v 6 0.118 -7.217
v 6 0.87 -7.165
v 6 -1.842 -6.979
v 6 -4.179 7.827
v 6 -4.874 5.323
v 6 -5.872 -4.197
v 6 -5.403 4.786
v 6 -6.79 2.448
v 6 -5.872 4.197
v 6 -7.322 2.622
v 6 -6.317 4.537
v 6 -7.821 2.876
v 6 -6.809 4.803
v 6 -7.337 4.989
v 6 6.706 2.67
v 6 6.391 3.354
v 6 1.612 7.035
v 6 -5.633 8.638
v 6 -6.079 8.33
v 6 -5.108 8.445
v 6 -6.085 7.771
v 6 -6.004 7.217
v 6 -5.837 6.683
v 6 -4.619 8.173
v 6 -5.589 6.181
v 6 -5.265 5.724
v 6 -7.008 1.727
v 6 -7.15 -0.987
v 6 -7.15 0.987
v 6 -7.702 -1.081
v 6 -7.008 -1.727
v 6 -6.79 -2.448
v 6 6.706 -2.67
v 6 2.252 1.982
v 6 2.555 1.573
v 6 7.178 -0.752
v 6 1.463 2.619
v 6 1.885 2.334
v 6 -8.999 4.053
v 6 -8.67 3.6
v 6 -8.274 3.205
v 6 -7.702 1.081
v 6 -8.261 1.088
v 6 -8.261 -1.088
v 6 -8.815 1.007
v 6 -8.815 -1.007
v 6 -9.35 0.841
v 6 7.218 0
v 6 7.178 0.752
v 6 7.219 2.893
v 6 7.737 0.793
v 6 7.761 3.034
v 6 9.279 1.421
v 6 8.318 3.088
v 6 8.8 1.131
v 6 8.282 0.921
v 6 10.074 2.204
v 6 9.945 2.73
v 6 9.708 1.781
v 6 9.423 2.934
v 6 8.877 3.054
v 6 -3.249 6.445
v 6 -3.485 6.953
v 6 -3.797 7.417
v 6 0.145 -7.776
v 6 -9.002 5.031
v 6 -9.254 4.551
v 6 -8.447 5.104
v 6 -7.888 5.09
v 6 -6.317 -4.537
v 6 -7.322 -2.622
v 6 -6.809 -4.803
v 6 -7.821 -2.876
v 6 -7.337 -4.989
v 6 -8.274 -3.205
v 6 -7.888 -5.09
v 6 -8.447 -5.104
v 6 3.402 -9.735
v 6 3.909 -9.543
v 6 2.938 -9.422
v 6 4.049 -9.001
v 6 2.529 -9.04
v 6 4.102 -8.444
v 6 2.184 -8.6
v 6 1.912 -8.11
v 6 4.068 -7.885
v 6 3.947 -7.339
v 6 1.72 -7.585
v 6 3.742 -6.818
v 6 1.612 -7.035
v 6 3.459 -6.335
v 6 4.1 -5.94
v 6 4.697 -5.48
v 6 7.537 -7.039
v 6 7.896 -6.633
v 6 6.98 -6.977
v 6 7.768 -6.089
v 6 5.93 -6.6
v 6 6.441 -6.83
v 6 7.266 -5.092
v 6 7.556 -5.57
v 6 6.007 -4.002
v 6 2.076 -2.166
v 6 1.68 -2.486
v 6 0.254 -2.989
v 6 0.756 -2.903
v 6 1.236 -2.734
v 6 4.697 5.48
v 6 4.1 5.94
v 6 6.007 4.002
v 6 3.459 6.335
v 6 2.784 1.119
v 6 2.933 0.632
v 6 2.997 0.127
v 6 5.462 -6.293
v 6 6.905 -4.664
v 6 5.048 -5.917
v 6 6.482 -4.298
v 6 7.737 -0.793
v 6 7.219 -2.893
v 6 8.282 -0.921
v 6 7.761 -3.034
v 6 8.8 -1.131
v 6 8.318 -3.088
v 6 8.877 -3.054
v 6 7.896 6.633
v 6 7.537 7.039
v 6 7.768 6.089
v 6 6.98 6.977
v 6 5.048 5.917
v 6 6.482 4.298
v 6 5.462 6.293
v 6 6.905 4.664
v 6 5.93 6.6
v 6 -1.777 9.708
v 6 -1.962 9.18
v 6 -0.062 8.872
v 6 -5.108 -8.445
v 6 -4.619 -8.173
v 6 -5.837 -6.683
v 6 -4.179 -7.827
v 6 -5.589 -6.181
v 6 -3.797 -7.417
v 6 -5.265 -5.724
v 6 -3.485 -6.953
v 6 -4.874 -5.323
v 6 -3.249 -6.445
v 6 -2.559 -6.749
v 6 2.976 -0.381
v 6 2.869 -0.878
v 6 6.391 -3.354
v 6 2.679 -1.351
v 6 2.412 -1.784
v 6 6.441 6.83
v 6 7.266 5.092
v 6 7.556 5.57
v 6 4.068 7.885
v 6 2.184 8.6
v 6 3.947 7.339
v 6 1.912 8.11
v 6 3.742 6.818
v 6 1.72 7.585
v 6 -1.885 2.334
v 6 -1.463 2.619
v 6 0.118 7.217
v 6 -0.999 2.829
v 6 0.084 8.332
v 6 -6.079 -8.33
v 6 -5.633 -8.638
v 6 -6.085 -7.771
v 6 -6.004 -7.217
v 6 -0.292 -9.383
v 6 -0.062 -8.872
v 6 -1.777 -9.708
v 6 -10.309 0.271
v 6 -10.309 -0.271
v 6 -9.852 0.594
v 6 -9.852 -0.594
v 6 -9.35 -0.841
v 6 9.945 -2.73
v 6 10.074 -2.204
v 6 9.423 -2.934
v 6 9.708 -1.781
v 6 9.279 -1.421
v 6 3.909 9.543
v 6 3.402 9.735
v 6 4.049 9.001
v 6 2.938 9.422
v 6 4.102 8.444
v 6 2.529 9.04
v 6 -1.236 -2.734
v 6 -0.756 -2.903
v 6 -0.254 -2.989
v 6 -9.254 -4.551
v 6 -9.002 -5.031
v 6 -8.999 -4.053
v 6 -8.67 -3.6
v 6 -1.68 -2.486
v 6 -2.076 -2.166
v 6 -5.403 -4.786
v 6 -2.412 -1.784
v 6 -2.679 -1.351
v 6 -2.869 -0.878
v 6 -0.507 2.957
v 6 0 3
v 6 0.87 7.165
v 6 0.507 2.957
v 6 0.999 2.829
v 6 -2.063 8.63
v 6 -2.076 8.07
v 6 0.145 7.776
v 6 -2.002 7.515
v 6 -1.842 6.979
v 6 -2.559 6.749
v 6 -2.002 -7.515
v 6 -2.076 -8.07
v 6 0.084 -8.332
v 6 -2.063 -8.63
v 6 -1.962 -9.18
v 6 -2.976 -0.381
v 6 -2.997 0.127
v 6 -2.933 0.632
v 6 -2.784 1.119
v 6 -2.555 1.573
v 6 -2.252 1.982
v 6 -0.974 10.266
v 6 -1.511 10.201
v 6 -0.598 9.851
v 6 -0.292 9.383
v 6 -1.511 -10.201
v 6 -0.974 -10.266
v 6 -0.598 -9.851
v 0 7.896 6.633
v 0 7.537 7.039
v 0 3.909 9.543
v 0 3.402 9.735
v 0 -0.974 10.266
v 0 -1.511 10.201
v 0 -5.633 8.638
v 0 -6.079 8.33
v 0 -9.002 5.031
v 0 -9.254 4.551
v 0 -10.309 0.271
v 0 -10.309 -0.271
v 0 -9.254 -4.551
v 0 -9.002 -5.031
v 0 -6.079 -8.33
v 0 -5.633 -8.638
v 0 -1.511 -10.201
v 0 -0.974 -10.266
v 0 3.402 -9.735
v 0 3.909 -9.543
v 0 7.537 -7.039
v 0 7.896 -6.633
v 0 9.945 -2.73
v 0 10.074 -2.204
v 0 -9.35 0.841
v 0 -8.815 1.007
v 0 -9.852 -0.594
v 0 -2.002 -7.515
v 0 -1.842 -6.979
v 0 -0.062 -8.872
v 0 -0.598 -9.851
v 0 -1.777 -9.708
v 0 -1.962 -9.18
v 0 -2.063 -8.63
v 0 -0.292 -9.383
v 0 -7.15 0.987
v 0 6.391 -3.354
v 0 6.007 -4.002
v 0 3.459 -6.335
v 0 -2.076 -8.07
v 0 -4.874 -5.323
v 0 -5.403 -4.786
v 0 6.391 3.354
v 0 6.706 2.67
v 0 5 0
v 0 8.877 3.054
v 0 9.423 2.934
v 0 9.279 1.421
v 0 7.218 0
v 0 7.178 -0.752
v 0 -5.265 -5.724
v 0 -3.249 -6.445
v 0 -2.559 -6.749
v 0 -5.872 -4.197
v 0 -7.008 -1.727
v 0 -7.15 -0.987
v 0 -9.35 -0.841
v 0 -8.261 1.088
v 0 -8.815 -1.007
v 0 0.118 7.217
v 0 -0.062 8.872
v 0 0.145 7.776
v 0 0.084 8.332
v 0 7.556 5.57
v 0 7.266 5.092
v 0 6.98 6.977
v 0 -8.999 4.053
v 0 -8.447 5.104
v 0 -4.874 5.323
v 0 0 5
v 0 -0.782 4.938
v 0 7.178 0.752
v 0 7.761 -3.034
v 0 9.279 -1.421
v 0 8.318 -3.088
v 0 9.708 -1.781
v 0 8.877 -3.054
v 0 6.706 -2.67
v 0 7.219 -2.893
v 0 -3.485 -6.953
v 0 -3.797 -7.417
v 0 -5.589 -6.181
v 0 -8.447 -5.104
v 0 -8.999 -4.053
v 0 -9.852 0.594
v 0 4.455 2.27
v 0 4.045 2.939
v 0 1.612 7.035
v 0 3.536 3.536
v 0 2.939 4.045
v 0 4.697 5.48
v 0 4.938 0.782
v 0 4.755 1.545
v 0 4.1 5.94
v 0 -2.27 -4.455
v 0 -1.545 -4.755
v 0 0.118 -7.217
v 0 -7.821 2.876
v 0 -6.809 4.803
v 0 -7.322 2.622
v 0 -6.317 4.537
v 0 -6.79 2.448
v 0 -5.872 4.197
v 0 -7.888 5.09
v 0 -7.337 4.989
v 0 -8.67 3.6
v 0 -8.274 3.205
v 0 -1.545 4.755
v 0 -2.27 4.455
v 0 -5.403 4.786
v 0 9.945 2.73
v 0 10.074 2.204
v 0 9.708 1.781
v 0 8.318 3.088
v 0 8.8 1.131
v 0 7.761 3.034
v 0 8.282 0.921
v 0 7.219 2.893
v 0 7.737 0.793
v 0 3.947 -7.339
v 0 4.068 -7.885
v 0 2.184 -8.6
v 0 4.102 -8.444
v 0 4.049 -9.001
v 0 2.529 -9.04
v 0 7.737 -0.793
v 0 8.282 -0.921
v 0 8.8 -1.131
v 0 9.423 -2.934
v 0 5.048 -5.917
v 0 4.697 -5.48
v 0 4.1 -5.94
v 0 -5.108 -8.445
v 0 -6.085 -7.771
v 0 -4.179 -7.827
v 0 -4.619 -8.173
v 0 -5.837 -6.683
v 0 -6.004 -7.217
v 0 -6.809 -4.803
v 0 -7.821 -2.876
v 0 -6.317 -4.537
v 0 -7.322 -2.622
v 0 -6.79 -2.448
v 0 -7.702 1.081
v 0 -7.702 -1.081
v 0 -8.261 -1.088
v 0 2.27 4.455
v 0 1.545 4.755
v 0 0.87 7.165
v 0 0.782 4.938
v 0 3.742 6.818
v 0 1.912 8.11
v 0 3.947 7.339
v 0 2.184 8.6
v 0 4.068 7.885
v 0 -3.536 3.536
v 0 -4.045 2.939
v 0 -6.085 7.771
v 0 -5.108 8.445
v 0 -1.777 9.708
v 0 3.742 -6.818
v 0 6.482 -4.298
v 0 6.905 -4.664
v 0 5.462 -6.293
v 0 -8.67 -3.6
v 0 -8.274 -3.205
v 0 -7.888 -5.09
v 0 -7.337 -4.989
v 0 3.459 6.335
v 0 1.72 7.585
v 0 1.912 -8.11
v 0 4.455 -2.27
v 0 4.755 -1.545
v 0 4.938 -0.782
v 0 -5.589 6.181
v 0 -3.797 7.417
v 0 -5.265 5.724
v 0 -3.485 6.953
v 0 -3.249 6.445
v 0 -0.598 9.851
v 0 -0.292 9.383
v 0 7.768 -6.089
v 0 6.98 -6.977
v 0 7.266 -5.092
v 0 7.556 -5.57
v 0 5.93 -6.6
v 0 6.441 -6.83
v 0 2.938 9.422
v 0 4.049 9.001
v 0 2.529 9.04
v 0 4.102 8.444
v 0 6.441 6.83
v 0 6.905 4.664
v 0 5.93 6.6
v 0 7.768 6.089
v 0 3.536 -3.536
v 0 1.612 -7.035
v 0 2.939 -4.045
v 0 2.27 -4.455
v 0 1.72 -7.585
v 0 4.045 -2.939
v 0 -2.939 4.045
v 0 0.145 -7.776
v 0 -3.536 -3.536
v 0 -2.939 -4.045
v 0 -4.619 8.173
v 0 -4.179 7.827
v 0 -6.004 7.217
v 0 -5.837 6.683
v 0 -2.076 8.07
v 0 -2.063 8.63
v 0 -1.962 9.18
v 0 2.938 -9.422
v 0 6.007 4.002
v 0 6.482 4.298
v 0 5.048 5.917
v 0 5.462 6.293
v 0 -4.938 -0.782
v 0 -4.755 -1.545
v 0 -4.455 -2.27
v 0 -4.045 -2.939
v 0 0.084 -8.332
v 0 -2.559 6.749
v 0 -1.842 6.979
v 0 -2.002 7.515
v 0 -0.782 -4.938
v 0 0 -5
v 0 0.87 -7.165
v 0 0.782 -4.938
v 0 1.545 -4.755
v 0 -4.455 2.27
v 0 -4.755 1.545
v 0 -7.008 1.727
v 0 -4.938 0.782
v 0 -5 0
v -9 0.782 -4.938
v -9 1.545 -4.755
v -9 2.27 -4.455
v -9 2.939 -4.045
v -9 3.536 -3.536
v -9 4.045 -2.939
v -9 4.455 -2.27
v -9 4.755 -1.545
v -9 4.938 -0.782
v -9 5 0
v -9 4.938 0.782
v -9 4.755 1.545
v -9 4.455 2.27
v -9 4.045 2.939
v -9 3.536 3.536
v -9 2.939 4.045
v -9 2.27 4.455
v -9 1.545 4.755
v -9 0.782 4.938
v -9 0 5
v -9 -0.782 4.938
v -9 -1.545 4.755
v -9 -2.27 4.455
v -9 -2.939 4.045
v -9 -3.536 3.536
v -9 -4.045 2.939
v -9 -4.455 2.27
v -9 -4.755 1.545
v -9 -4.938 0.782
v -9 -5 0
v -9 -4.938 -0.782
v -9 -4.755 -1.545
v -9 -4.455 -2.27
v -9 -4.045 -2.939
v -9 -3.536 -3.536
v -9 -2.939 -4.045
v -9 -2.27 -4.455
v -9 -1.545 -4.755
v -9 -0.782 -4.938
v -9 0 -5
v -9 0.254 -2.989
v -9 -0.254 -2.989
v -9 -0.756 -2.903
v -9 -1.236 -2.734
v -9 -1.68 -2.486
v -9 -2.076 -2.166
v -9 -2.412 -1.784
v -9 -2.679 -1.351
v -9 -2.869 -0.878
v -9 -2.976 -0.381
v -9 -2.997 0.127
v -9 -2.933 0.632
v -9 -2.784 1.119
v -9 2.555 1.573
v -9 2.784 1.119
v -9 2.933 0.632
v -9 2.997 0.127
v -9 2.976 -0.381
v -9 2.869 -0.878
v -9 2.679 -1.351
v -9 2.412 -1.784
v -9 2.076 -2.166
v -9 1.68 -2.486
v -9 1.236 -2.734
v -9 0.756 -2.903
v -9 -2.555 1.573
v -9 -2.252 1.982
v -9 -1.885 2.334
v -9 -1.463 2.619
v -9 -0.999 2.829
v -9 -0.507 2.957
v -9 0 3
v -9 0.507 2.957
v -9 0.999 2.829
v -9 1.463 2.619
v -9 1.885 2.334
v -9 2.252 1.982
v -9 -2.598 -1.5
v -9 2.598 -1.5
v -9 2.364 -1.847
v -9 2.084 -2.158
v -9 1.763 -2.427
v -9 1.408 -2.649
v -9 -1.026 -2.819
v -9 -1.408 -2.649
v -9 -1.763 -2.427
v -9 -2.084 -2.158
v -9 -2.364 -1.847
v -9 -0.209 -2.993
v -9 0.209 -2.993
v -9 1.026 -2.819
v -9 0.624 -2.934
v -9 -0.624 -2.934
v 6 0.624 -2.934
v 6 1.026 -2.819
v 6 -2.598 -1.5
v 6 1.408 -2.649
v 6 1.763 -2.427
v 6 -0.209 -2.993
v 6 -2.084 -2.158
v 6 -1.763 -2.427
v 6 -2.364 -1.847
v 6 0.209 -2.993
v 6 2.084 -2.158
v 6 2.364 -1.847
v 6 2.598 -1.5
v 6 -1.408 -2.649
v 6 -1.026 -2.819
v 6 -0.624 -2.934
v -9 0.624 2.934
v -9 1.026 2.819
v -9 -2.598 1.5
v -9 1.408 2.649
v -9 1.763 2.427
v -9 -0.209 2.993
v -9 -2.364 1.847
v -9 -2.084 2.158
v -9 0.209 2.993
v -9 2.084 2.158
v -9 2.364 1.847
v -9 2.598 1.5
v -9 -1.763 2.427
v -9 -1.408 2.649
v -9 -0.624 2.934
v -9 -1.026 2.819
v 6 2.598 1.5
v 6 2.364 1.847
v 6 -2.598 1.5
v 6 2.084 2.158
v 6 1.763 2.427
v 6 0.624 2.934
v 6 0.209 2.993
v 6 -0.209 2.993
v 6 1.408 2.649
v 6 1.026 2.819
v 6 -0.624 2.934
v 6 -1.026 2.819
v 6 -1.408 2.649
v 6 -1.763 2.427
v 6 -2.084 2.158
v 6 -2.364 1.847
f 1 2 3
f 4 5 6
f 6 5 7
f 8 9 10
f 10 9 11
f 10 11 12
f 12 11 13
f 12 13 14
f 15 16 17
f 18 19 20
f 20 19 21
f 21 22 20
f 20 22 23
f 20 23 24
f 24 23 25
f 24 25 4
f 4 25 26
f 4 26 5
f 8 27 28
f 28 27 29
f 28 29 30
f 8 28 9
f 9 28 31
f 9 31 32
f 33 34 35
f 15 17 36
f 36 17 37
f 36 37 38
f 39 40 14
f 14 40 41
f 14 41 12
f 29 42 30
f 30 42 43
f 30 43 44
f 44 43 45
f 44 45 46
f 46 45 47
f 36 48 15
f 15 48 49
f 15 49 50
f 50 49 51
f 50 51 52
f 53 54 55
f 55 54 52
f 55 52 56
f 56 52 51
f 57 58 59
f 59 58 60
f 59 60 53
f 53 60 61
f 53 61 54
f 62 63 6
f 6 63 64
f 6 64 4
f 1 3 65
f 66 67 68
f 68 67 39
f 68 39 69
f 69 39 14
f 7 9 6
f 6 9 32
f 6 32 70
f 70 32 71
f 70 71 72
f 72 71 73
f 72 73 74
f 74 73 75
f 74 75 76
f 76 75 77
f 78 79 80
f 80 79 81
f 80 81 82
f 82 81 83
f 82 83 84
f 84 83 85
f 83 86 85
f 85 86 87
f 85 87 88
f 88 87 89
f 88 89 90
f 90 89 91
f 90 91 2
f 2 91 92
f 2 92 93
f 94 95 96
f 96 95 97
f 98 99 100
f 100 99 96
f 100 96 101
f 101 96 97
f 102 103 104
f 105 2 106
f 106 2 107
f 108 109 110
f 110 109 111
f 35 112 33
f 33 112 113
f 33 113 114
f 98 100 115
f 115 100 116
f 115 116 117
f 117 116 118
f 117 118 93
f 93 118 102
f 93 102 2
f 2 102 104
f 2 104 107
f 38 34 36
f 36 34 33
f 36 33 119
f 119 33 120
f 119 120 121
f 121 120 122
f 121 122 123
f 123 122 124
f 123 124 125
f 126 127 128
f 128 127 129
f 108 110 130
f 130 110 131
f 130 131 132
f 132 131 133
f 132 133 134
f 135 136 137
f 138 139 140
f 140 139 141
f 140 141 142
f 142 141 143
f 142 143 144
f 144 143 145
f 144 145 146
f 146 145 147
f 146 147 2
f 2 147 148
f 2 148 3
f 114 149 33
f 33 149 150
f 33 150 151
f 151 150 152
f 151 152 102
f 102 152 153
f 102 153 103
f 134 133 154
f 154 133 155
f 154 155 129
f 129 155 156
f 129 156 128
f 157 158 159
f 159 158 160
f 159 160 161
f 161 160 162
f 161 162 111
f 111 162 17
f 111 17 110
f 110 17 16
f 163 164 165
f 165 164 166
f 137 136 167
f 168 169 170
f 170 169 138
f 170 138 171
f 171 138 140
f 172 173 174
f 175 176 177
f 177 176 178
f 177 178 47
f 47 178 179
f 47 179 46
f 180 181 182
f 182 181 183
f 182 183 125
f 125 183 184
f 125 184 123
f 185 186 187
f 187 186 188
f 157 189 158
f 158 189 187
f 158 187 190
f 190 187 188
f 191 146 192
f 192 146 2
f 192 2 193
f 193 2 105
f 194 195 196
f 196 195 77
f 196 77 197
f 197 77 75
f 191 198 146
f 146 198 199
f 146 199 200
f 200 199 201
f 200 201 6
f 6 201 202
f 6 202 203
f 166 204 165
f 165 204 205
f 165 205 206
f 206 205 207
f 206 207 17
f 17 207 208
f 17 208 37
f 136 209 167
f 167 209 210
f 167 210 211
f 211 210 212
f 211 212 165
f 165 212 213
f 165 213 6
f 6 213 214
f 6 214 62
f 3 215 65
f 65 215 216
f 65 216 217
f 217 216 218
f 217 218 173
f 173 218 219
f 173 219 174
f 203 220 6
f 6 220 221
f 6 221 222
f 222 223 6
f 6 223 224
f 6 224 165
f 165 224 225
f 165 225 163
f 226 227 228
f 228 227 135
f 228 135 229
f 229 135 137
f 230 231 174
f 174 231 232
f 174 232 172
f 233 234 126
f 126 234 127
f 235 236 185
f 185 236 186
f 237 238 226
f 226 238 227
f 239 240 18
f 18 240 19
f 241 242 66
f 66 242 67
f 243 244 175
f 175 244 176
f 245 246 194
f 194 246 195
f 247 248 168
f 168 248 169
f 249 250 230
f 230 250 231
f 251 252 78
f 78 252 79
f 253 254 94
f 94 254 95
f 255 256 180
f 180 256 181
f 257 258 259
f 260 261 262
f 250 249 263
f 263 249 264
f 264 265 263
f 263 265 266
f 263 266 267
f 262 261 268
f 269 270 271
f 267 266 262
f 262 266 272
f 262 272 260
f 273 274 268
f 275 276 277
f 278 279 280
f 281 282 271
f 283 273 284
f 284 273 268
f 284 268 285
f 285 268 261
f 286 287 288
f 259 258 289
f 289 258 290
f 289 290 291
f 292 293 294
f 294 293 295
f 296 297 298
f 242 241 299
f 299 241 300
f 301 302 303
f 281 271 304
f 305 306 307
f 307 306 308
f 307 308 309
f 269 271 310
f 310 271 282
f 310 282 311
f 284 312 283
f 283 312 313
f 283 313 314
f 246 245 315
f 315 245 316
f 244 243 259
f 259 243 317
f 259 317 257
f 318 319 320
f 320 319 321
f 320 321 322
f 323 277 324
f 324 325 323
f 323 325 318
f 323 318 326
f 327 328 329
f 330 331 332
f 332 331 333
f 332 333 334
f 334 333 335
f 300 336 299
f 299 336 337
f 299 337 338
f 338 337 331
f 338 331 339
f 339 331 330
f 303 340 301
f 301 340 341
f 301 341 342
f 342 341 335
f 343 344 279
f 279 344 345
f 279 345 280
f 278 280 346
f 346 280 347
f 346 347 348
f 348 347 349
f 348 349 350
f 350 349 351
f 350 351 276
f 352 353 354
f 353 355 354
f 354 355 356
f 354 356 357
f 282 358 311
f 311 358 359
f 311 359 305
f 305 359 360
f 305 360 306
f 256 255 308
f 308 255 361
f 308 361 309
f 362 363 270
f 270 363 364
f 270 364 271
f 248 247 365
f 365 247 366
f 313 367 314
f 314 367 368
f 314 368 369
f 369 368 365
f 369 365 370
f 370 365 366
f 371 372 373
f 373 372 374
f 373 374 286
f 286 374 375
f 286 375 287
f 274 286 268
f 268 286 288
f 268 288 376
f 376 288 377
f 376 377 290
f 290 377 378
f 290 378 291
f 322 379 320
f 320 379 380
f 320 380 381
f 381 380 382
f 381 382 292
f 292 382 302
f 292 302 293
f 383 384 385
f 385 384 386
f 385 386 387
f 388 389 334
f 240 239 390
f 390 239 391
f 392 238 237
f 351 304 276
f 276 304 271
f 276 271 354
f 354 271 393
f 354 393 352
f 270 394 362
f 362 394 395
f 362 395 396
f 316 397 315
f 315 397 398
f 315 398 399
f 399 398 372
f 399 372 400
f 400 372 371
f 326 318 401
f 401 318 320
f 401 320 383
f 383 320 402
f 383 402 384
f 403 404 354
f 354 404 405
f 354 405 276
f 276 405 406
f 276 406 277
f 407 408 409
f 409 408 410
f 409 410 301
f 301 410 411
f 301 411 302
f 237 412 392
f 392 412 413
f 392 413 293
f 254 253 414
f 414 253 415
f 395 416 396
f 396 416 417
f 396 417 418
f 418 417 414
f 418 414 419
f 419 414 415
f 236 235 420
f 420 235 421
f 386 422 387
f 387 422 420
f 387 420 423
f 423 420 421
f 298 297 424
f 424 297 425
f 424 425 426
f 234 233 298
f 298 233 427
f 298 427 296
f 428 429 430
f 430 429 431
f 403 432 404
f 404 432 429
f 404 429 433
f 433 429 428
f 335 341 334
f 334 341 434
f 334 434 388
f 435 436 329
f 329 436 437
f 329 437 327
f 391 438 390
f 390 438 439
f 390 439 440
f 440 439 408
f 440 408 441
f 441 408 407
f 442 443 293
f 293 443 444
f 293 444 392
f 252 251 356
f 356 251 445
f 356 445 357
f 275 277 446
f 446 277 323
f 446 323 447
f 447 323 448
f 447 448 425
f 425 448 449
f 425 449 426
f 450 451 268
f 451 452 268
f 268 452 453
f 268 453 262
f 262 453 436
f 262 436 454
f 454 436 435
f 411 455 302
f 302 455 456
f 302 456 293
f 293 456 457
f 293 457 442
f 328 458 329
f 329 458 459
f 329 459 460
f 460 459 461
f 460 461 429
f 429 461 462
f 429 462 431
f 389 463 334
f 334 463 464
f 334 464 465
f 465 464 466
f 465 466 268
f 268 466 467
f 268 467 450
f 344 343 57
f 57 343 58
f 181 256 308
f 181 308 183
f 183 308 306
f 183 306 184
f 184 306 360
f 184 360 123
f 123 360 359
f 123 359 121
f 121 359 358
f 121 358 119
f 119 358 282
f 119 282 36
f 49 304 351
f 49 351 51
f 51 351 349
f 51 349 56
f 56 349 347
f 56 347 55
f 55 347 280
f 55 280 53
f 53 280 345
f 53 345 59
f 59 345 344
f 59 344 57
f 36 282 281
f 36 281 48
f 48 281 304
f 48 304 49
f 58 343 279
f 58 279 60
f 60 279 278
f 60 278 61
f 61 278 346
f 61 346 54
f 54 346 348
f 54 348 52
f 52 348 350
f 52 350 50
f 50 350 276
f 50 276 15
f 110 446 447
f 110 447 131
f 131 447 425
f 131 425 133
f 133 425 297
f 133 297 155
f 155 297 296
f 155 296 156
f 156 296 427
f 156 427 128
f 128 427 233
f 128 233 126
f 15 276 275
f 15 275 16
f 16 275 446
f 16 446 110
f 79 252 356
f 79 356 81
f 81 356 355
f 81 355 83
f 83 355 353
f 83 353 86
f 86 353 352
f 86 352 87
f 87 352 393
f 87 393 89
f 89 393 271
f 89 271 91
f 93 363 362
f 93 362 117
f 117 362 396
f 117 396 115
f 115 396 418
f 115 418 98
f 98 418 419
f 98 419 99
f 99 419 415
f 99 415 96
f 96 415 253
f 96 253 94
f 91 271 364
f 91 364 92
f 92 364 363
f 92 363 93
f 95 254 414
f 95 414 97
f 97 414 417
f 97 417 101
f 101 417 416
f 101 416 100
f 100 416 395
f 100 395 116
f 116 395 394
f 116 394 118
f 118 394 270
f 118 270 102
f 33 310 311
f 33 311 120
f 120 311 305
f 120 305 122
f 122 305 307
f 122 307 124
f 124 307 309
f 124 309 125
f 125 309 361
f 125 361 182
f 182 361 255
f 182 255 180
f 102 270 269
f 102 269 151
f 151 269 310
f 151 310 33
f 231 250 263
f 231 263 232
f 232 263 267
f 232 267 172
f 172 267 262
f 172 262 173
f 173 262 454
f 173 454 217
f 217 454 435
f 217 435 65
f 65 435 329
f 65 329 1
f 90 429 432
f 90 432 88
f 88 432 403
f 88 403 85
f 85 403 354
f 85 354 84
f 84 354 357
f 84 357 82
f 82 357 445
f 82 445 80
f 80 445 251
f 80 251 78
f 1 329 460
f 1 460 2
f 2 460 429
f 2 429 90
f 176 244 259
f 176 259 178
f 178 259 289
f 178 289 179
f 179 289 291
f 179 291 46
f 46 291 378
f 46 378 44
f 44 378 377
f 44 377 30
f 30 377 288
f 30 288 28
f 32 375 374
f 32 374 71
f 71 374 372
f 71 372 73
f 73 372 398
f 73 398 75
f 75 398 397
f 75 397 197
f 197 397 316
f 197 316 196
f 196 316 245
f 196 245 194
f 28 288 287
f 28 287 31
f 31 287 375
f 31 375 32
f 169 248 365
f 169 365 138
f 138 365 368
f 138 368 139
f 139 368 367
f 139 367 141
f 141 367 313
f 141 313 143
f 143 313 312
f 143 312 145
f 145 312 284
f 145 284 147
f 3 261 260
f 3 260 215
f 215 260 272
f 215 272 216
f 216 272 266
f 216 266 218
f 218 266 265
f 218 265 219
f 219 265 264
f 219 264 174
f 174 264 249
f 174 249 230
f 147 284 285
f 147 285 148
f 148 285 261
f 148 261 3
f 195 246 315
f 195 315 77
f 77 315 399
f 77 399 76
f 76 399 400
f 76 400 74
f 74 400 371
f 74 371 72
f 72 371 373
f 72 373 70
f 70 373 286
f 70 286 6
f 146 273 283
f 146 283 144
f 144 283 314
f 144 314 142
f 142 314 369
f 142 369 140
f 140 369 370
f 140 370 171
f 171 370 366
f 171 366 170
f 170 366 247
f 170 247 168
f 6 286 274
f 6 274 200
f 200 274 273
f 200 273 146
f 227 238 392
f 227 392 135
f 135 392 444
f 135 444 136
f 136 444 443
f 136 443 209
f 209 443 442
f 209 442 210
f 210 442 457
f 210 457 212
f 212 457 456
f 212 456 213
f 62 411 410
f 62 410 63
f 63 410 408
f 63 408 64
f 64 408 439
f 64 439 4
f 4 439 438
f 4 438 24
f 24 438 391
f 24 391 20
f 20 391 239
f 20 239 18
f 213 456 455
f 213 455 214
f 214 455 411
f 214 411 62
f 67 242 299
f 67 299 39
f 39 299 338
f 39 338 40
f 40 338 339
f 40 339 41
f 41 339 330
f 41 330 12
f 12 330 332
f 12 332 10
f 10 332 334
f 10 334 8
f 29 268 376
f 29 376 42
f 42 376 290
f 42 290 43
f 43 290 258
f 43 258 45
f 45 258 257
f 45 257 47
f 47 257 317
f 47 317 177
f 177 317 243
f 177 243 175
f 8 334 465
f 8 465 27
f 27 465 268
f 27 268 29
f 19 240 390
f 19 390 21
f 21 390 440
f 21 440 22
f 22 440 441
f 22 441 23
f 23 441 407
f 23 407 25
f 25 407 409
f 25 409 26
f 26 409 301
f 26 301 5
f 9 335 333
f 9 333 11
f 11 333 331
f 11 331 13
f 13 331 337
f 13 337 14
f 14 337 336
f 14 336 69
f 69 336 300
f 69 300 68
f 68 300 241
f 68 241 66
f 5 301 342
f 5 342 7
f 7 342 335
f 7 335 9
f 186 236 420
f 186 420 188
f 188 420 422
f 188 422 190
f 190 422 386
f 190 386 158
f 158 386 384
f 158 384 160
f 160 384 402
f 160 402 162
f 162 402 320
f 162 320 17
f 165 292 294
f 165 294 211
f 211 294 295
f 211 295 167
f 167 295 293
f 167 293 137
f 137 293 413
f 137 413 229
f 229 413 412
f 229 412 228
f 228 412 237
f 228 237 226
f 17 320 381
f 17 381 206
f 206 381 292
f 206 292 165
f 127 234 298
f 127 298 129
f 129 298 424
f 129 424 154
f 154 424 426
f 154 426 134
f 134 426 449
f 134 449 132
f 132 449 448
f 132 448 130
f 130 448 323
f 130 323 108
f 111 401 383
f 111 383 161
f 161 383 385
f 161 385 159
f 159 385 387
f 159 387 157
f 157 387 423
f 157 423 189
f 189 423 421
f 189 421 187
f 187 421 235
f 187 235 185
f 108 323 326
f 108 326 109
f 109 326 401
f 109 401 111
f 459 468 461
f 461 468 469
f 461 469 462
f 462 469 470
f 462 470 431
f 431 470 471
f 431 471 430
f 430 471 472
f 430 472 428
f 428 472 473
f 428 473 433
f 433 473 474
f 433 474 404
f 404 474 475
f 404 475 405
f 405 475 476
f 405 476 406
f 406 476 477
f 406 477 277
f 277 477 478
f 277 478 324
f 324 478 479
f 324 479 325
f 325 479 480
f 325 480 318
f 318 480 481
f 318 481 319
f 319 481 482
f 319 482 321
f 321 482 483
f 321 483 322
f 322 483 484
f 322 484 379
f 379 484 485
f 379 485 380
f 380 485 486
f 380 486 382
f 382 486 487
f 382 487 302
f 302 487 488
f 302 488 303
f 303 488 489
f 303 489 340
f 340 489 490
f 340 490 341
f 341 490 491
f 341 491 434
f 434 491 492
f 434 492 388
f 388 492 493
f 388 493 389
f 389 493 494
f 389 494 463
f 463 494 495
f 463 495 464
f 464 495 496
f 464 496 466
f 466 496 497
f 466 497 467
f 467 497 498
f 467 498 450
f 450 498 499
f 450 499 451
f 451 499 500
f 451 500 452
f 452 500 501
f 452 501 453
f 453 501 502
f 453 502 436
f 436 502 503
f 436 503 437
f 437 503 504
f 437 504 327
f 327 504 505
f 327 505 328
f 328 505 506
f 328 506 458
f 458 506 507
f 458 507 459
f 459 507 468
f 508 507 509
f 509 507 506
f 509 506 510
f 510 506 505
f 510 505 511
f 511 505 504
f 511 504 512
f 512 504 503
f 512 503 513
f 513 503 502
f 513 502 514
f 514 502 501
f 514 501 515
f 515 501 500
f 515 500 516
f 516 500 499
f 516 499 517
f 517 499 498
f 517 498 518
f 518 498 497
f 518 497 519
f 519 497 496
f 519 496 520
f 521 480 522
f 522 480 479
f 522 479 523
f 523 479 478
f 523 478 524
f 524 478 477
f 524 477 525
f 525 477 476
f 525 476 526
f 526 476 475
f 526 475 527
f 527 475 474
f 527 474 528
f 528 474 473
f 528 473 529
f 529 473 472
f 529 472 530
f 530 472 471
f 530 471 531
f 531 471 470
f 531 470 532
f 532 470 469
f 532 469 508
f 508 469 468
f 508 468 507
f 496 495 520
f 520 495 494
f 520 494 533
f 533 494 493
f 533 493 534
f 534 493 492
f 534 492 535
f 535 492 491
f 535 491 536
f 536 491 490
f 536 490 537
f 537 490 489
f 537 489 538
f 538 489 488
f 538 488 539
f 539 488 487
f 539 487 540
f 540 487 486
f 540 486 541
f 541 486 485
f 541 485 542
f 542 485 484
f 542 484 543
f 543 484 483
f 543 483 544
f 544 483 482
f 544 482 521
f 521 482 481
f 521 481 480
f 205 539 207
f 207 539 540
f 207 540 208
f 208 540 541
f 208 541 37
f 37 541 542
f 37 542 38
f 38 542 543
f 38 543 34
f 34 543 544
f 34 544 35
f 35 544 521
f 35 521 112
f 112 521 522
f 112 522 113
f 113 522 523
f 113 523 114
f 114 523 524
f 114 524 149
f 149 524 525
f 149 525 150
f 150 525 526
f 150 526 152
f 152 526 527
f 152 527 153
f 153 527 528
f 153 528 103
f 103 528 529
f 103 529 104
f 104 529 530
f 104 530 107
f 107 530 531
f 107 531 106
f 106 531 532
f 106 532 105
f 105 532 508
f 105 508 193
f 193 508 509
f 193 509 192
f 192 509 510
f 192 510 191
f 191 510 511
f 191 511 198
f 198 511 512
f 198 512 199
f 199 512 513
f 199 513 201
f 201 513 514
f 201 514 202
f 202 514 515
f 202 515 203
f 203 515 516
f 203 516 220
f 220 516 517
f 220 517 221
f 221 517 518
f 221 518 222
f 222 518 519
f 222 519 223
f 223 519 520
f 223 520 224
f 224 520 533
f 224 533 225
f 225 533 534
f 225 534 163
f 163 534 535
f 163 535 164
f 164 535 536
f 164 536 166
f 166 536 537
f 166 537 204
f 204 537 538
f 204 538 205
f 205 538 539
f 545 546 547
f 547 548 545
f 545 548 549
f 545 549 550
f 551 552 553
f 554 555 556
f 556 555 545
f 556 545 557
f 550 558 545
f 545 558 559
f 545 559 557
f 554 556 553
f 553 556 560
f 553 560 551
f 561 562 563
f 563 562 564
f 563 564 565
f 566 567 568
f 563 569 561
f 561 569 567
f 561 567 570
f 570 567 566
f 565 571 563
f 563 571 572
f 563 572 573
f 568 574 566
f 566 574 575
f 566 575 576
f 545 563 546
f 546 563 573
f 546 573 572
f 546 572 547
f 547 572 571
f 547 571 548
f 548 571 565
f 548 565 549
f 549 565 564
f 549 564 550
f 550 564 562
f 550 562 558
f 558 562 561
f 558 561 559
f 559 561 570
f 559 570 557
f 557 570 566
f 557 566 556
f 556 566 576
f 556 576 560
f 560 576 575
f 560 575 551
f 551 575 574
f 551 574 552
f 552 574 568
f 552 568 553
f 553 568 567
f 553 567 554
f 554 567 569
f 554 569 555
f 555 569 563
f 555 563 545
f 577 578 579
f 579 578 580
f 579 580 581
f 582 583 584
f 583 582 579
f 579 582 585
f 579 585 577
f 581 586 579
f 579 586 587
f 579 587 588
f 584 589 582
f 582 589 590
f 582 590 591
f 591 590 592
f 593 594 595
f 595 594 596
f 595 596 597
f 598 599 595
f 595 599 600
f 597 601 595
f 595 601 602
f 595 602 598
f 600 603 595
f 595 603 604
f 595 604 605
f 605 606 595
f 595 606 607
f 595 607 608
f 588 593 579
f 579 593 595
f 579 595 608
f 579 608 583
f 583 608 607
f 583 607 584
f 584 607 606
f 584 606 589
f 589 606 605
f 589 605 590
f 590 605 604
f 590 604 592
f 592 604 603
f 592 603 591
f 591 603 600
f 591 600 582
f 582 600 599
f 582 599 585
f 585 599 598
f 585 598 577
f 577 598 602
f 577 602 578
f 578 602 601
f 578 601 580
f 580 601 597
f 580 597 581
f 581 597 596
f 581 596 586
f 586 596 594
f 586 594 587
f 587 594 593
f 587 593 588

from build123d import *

# Parameters (mm, degrees)
BASPROSKE_W                = 6
BASPROSKE_H                = 10.3125
TOOTHCUT_DEPTH             = 16.77007649
TEETHCUTS_COUNT            = 13
TEETHCUTS_ANGLE            = 332.307692308
HUBNEAONESKE_R             = 5
HUBNEARONE_DEPTH           = 9.0000508
BORSKE_R                   = 3
BORE_DEPTH                 = 15.0000508
RESSALTO_EXTRUS_O1_DEPTH   = 15.0000508
RESSALTO_EXTRUS_O1_2_DEPTH = 15.0000508


with BuildPart() as part:
    # BasProSke → Base-Revolve (revolve)
    with BuildSketch(Plane(origin=(0, 0, 0), x_dir=(1, 0, 0), z_dir=(0, 1, 0)), mode=Mode.PRIVATE) as base_revolve_sk:
        with Locations((3, 5.15625)):
            Rectangle(BASPROSKE_W, BASPROSKE_H)
    revolve(base_revolve_sk.sketch.rotate(Axis((-10, 0, 0), (1, 0, 0)), 180), axis=Axis((-10, 0, 0), (1, 0, 0)))

    # TooCutSke → ToothCut (cut, through all)
    with BuildSketch(Plane(origin=(0, 0, 0), x_dir=(0, 0, -1), z_dir=(1, 0, 0))):
        with BuildLine():
            ThreePointArc((0.752325277, 7.178434491), (0, 7.21775), (-0.752325277, 7.178434491))
            ThreePointArc((-0.752325277, 7.178434491), (-1.139082079, 8.815312292), (-2.231534425, 10.094178051))
            ThreePointArc((-2.231534425, 10.094178051), (0, 10.3379), (2.231534425, 10.094178051))
            ThreePointArc((2.231534425, 10.094178051), (1.139082079, 8.815312292), (0.752325277, 7.178434491))
        make_face()
    toothcut = extrude(amount=TOOTHCUT_DEPTH, mode=Mode.SUBTRACT)

    # TeethCuts: ToothCut ×13 about axis
    teethcuts_axis = Axis((-10, 0, 0), (1, 0, 0))
    for i in range(1, TEETHCUTS_COUNT):
        add(toothcut.rotate(teethcuts_axis, i * TEETHCUTS_ANGLE / (TEETHCUTS_COUNT - 1)), mode=Mode.SUBTRACT)

    # HubNeaOneSke → HubNearOne (add)
    with BuildSketch(Plane.ZY):
        with Locations(Location((0, 0, 0), (0, 0, 180))):
            Circle(HUBNEAONESKE_R)
    extrude(amount=HUBNEARONE_DEPTH)

    # BorSke → Bore (cut, symmetric)
    with BuildSketch(Plane(origin=(0, 0, 0), x_dir=(0, 0, -1), z_dir=(1, 0, 0))):
        with Locations(Location((0, 0, 0), (0, 0, 180))):
            Circle(BORSKE_R)
    extrude(amount=BORE_DEPTH, both=True, mode=Mode.SUBTRACT)


with BuildPart() as body_2:
    # Esboço1 → Ressalto-extrusão1 (new body)
    with BuildSketch(Plane(origin=(6, 0, 0), x_dir=(0, 0, -1), z_dir=(1, 0, 0))):
        with BuildLine():
            Line((-1.5, -2.598076211), (-1.5, 2.598076211))
            ThreePointArc((-1.5, 2.598076211), (-3, 0), (-1.5, -2.598076211))
        make_face()
    extrude(amount=-RESSALTO_EXTRUS_O1_DEPTH)


with BuildPart() as body_3:
    # Esboço1 → Ressalto-extrus_o1 2 (new body)
    with BuildSketch(Plane(origin=(6, 0, 0), x_dir=(0, 0, -1), z_dir=(1, 0, 0))):
        with BuildLine():
            Line((1.5, -2.598076211), (1.5, 2.598076211))
            ThreePointArc((1.5, 2.598076211), (3, 0), (1.5, -2.598076211))
        make_face()
    extrude(amount=-RESSALTO_EXTRUS_O1_2_DEPTH)


solid = Compound([part.part, body_2.part, body_3.part])
